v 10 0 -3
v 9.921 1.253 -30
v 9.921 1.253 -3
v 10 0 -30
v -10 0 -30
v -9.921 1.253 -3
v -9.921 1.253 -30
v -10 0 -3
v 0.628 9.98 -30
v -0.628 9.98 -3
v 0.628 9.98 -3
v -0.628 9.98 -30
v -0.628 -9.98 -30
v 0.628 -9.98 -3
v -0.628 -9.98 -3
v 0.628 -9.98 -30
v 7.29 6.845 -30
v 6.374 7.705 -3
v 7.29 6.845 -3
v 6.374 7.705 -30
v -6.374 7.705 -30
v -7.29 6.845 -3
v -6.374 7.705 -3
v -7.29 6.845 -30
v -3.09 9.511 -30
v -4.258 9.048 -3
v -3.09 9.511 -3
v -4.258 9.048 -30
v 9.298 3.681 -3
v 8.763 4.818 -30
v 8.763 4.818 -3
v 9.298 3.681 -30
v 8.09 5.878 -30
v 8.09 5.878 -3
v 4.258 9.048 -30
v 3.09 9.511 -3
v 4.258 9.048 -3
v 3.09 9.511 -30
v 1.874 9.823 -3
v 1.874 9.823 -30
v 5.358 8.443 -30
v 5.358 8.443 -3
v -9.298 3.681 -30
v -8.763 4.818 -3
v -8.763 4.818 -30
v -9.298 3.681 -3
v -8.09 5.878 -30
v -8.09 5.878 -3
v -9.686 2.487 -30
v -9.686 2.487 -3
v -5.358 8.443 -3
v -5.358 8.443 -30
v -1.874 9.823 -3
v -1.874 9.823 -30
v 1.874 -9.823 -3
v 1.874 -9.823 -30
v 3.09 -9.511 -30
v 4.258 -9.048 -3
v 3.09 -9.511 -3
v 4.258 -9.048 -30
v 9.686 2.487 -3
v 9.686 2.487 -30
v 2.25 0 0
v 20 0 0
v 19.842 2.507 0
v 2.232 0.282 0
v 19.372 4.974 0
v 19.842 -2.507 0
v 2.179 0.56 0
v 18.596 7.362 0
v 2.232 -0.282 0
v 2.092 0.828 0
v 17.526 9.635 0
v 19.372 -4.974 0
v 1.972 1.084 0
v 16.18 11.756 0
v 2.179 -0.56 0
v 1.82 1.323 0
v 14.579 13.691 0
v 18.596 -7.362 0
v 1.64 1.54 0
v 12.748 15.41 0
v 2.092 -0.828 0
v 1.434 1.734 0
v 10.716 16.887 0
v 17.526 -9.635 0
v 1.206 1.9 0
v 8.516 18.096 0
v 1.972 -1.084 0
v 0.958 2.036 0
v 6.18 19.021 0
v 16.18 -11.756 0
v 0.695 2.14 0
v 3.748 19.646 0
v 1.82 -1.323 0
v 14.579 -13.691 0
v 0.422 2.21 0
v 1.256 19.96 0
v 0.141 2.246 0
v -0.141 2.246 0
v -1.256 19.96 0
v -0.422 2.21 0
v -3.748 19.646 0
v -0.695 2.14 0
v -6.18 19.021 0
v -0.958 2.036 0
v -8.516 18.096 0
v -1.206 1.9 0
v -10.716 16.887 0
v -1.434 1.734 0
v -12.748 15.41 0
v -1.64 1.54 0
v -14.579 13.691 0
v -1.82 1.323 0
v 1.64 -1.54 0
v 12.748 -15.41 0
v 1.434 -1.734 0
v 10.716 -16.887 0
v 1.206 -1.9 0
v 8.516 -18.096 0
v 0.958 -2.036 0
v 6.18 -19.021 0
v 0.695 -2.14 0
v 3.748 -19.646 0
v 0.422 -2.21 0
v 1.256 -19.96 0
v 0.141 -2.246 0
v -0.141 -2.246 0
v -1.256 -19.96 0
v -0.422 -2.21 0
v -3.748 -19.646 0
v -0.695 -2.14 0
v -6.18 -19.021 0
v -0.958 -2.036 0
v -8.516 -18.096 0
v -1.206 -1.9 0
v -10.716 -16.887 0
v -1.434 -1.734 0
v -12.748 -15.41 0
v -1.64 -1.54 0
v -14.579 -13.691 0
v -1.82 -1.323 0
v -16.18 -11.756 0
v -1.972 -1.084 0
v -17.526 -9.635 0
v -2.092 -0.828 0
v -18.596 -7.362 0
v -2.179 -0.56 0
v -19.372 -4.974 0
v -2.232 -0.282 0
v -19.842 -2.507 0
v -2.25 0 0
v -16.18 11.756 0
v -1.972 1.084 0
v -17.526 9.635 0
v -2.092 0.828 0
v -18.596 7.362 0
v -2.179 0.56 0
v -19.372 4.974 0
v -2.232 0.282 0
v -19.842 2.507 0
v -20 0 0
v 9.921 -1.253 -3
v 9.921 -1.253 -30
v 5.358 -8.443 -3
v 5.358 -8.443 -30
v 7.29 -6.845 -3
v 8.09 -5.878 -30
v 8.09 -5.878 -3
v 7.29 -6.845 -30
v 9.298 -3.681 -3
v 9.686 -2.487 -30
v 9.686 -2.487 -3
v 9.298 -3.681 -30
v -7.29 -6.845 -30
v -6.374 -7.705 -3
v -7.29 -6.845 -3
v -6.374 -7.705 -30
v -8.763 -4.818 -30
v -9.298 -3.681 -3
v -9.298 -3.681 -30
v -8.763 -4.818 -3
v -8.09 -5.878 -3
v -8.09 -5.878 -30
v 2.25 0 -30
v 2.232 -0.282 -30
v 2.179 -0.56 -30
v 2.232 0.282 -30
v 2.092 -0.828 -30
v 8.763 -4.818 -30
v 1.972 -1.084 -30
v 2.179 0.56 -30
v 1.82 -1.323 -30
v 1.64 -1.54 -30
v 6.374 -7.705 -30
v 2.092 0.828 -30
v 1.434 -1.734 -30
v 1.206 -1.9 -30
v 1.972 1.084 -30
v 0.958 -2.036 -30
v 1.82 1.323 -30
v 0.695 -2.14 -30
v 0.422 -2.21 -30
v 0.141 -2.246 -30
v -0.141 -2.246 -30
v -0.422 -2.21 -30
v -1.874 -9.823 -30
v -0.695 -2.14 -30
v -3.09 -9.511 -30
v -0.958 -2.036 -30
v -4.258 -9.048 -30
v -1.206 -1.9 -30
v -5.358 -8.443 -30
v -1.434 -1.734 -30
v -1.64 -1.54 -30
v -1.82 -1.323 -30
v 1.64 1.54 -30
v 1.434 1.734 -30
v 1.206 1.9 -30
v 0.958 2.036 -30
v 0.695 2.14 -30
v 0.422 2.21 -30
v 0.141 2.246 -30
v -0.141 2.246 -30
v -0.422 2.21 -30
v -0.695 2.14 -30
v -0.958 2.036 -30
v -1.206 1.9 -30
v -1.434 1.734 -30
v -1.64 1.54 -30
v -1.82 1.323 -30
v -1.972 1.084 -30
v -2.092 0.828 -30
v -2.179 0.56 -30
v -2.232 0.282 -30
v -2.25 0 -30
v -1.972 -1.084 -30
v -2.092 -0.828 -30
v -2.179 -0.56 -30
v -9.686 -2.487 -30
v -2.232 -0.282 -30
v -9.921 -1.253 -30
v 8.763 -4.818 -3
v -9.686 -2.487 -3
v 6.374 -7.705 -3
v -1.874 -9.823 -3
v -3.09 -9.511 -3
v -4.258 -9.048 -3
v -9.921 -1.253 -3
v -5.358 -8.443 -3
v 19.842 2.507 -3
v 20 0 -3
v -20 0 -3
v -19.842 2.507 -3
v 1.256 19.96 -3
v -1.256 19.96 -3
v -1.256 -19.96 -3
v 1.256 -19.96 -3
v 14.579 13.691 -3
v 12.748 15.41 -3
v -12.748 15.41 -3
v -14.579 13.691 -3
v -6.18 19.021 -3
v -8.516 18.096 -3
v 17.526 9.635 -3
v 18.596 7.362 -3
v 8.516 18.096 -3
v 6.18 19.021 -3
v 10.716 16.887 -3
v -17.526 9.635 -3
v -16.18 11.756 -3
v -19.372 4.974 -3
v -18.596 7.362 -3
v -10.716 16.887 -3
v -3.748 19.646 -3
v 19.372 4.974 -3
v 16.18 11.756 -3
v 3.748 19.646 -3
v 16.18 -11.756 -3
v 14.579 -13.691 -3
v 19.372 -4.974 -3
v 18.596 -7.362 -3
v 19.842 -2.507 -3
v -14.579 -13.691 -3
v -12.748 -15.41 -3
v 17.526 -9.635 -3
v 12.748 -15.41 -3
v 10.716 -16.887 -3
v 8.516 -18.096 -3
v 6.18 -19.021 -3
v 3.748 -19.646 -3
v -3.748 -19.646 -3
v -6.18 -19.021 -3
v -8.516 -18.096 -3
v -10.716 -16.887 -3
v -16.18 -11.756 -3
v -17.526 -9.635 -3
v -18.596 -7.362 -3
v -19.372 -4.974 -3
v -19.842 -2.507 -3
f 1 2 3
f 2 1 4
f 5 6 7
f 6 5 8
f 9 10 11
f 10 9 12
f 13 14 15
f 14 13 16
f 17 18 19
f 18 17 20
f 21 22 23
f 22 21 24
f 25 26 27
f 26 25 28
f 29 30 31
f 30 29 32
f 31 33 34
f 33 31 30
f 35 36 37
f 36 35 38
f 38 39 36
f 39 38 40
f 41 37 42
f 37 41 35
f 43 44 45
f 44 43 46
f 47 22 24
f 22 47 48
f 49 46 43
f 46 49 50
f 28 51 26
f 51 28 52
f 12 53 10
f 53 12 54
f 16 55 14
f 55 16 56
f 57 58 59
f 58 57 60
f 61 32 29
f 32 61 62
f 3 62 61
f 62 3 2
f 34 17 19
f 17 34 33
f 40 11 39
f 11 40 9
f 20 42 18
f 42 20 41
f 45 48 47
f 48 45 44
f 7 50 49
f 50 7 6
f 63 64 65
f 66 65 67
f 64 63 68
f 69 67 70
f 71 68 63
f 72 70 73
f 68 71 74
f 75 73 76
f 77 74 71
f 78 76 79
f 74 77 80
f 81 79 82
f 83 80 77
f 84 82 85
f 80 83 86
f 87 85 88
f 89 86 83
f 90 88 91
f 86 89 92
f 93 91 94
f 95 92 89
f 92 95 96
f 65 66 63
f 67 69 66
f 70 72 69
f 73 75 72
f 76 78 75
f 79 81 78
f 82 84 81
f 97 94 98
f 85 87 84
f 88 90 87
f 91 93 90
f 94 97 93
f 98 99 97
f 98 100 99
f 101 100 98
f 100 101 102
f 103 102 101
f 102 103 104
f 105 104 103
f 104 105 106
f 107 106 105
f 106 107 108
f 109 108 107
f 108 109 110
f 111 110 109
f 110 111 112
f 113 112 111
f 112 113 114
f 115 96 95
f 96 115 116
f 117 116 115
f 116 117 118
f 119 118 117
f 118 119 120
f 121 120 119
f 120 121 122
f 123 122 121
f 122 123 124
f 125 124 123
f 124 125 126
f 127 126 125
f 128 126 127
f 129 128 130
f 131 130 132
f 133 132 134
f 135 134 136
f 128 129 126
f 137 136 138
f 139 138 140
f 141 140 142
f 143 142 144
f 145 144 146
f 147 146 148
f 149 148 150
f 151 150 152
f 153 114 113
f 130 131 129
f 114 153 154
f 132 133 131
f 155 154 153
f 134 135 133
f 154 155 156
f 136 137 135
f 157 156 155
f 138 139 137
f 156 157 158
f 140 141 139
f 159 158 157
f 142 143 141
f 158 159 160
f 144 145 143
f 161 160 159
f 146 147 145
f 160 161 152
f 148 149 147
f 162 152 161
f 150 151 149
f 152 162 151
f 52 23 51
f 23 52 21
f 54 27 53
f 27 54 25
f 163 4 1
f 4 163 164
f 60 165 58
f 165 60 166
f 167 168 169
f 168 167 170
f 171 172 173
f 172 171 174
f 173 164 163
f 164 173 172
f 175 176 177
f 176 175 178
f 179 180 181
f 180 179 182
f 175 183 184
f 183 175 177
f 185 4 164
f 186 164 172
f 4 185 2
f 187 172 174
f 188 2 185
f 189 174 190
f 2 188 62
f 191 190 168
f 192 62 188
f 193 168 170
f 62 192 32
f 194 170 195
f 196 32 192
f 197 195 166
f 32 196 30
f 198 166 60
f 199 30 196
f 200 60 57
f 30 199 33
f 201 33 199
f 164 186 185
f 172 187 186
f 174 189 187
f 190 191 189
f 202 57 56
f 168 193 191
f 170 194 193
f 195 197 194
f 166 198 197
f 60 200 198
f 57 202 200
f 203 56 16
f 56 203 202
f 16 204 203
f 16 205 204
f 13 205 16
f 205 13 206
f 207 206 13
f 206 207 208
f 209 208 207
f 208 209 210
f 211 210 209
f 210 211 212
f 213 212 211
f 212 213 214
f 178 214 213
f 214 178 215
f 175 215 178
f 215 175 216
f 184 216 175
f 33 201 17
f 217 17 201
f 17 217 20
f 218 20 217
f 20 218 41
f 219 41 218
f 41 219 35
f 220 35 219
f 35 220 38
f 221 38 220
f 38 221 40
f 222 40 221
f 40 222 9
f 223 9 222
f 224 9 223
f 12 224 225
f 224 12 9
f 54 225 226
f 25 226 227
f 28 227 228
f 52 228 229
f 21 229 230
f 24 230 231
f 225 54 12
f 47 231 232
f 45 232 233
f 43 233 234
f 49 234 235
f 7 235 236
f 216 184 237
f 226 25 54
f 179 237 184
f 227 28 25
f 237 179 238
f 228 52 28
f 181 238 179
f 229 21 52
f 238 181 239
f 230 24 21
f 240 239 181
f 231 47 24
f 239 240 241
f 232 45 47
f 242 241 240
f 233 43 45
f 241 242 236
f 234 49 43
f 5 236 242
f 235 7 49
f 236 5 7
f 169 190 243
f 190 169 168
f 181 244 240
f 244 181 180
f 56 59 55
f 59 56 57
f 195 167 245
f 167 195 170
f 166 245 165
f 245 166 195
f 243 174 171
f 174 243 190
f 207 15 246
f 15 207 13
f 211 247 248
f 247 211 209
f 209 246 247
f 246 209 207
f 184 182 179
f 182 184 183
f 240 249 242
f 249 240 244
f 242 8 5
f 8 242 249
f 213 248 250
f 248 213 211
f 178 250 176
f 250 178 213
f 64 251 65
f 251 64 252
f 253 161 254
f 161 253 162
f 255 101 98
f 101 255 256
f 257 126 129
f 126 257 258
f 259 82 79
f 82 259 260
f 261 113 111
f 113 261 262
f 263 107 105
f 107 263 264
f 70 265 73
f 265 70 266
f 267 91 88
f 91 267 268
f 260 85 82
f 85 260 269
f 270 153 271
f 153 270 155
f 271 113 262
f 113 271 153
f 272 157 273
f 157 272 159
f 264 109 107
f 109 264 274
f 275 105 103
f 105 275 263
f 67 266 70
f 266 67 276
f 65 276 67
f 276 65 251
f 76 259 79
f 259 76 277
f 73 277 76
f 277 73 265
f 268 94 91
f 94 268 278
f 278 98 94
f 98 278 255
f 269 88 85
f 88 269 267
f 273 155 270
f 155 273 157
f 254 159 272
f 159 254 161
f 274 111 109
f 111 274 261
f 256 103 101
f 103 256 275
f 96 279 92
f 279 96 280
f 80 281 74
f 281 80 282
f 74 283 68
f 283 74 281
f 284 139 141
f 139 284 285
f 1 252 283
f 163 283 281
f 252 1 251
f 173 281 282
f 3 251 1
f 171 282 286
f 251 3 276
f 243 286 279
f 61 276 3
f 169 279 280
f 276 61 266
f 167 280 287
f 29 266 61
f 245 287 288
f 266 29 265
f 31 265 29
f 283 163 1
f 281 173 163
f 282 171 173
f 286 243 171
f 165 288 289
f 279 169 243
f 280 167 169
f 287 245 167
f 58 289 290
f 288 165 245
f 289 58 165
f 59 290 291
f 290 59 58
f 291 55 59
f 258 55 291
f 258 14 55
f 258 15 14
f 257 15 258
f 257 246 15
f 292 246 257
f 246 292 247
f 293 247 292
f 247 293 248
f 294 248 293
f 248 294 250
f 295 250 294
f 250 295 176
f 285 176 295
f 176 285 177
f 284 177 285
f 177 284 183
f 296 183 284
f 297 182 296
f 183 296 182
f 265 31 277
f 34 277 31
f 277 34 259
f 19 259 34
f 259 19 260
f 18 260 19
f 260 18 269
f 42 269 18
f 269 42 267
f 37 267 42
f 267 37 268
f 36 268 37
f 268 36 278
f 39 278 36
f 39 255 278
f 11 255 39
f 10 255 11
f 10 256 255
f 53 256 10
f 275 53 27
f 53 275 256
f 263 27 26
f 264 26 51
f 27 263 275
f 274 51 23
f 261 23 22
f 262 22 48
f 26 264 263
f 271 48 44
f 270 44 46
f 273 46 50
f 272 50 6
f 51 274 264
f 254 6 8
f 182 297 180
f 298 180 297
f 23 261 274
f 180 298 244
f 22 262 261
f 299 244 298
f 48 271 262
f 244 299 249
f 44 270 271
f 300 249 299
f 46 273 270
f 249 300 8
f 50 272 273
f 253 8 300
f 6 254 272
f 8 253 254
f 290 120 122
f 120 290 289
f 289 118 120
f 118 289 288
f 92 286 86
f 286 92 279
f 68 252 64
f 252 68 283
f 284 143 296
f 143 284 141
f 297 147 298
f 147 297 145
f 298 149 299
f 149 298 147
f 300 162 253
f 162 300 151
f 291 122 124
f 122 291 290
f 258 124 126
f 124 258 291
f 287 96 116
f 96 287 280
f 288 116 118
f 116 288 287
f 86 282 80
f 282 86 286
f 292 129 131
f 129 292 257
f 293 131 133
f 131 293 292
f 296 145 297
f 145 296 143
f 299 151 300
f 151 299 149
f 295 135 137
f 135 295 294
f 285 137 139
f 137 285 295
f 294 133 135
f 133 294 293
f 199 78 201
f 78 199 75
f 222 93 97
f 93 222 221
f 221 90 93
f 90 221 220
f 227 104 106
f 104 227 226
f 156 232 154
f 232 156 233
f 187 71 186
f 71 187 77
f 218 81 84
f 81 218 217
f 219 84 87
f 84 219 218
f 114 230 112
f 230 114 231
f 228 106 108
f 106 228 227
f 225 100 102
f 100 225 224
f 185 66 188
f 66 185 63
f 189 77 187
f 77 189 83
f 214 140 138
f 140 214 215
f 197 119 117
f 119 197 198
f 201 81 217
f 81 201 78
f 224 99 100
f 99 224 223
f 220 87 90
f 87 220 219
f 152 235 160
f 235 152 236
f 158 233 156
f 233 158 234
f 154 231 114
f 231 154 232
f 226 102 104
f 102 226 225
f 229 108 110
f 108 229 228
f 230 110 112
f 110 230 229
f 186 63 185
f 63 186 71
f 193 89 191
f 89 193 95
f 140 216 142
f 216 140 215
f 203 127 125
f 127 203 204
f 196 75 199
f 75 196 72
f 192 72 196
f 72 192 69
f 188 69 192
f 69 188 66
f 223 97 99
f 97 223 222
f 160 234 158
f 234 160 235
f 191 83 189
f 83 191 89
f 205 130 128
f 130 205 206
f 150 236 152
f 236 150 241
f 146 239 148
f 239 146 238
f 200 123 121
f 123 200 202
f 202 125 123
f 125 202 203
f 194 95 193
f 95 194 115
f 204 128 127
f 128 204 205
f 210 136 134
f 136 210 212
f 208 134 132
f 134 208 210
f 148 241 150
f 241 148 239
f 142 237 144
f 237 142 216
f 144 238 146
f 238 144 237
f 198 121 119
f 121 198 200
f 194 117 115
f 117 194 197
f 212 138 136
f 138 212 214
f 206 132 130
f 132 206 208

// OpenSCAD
$fn = 50;


difference() {
	union() {
		translate(v = [0, 0, -30.0000000000]) {
			cylinder(h = 30, r = 10.0000000000);
		}
		translate(v = [0, 0, -3.0000000000]) {
			cylinder(h = 3, r = 20.0000000000);
		}
	}
	union() {
		#translate(v = [0, 0, -30]) {
			cylinder(h = 30, r = 2.2500000000);
		}
	}
}
